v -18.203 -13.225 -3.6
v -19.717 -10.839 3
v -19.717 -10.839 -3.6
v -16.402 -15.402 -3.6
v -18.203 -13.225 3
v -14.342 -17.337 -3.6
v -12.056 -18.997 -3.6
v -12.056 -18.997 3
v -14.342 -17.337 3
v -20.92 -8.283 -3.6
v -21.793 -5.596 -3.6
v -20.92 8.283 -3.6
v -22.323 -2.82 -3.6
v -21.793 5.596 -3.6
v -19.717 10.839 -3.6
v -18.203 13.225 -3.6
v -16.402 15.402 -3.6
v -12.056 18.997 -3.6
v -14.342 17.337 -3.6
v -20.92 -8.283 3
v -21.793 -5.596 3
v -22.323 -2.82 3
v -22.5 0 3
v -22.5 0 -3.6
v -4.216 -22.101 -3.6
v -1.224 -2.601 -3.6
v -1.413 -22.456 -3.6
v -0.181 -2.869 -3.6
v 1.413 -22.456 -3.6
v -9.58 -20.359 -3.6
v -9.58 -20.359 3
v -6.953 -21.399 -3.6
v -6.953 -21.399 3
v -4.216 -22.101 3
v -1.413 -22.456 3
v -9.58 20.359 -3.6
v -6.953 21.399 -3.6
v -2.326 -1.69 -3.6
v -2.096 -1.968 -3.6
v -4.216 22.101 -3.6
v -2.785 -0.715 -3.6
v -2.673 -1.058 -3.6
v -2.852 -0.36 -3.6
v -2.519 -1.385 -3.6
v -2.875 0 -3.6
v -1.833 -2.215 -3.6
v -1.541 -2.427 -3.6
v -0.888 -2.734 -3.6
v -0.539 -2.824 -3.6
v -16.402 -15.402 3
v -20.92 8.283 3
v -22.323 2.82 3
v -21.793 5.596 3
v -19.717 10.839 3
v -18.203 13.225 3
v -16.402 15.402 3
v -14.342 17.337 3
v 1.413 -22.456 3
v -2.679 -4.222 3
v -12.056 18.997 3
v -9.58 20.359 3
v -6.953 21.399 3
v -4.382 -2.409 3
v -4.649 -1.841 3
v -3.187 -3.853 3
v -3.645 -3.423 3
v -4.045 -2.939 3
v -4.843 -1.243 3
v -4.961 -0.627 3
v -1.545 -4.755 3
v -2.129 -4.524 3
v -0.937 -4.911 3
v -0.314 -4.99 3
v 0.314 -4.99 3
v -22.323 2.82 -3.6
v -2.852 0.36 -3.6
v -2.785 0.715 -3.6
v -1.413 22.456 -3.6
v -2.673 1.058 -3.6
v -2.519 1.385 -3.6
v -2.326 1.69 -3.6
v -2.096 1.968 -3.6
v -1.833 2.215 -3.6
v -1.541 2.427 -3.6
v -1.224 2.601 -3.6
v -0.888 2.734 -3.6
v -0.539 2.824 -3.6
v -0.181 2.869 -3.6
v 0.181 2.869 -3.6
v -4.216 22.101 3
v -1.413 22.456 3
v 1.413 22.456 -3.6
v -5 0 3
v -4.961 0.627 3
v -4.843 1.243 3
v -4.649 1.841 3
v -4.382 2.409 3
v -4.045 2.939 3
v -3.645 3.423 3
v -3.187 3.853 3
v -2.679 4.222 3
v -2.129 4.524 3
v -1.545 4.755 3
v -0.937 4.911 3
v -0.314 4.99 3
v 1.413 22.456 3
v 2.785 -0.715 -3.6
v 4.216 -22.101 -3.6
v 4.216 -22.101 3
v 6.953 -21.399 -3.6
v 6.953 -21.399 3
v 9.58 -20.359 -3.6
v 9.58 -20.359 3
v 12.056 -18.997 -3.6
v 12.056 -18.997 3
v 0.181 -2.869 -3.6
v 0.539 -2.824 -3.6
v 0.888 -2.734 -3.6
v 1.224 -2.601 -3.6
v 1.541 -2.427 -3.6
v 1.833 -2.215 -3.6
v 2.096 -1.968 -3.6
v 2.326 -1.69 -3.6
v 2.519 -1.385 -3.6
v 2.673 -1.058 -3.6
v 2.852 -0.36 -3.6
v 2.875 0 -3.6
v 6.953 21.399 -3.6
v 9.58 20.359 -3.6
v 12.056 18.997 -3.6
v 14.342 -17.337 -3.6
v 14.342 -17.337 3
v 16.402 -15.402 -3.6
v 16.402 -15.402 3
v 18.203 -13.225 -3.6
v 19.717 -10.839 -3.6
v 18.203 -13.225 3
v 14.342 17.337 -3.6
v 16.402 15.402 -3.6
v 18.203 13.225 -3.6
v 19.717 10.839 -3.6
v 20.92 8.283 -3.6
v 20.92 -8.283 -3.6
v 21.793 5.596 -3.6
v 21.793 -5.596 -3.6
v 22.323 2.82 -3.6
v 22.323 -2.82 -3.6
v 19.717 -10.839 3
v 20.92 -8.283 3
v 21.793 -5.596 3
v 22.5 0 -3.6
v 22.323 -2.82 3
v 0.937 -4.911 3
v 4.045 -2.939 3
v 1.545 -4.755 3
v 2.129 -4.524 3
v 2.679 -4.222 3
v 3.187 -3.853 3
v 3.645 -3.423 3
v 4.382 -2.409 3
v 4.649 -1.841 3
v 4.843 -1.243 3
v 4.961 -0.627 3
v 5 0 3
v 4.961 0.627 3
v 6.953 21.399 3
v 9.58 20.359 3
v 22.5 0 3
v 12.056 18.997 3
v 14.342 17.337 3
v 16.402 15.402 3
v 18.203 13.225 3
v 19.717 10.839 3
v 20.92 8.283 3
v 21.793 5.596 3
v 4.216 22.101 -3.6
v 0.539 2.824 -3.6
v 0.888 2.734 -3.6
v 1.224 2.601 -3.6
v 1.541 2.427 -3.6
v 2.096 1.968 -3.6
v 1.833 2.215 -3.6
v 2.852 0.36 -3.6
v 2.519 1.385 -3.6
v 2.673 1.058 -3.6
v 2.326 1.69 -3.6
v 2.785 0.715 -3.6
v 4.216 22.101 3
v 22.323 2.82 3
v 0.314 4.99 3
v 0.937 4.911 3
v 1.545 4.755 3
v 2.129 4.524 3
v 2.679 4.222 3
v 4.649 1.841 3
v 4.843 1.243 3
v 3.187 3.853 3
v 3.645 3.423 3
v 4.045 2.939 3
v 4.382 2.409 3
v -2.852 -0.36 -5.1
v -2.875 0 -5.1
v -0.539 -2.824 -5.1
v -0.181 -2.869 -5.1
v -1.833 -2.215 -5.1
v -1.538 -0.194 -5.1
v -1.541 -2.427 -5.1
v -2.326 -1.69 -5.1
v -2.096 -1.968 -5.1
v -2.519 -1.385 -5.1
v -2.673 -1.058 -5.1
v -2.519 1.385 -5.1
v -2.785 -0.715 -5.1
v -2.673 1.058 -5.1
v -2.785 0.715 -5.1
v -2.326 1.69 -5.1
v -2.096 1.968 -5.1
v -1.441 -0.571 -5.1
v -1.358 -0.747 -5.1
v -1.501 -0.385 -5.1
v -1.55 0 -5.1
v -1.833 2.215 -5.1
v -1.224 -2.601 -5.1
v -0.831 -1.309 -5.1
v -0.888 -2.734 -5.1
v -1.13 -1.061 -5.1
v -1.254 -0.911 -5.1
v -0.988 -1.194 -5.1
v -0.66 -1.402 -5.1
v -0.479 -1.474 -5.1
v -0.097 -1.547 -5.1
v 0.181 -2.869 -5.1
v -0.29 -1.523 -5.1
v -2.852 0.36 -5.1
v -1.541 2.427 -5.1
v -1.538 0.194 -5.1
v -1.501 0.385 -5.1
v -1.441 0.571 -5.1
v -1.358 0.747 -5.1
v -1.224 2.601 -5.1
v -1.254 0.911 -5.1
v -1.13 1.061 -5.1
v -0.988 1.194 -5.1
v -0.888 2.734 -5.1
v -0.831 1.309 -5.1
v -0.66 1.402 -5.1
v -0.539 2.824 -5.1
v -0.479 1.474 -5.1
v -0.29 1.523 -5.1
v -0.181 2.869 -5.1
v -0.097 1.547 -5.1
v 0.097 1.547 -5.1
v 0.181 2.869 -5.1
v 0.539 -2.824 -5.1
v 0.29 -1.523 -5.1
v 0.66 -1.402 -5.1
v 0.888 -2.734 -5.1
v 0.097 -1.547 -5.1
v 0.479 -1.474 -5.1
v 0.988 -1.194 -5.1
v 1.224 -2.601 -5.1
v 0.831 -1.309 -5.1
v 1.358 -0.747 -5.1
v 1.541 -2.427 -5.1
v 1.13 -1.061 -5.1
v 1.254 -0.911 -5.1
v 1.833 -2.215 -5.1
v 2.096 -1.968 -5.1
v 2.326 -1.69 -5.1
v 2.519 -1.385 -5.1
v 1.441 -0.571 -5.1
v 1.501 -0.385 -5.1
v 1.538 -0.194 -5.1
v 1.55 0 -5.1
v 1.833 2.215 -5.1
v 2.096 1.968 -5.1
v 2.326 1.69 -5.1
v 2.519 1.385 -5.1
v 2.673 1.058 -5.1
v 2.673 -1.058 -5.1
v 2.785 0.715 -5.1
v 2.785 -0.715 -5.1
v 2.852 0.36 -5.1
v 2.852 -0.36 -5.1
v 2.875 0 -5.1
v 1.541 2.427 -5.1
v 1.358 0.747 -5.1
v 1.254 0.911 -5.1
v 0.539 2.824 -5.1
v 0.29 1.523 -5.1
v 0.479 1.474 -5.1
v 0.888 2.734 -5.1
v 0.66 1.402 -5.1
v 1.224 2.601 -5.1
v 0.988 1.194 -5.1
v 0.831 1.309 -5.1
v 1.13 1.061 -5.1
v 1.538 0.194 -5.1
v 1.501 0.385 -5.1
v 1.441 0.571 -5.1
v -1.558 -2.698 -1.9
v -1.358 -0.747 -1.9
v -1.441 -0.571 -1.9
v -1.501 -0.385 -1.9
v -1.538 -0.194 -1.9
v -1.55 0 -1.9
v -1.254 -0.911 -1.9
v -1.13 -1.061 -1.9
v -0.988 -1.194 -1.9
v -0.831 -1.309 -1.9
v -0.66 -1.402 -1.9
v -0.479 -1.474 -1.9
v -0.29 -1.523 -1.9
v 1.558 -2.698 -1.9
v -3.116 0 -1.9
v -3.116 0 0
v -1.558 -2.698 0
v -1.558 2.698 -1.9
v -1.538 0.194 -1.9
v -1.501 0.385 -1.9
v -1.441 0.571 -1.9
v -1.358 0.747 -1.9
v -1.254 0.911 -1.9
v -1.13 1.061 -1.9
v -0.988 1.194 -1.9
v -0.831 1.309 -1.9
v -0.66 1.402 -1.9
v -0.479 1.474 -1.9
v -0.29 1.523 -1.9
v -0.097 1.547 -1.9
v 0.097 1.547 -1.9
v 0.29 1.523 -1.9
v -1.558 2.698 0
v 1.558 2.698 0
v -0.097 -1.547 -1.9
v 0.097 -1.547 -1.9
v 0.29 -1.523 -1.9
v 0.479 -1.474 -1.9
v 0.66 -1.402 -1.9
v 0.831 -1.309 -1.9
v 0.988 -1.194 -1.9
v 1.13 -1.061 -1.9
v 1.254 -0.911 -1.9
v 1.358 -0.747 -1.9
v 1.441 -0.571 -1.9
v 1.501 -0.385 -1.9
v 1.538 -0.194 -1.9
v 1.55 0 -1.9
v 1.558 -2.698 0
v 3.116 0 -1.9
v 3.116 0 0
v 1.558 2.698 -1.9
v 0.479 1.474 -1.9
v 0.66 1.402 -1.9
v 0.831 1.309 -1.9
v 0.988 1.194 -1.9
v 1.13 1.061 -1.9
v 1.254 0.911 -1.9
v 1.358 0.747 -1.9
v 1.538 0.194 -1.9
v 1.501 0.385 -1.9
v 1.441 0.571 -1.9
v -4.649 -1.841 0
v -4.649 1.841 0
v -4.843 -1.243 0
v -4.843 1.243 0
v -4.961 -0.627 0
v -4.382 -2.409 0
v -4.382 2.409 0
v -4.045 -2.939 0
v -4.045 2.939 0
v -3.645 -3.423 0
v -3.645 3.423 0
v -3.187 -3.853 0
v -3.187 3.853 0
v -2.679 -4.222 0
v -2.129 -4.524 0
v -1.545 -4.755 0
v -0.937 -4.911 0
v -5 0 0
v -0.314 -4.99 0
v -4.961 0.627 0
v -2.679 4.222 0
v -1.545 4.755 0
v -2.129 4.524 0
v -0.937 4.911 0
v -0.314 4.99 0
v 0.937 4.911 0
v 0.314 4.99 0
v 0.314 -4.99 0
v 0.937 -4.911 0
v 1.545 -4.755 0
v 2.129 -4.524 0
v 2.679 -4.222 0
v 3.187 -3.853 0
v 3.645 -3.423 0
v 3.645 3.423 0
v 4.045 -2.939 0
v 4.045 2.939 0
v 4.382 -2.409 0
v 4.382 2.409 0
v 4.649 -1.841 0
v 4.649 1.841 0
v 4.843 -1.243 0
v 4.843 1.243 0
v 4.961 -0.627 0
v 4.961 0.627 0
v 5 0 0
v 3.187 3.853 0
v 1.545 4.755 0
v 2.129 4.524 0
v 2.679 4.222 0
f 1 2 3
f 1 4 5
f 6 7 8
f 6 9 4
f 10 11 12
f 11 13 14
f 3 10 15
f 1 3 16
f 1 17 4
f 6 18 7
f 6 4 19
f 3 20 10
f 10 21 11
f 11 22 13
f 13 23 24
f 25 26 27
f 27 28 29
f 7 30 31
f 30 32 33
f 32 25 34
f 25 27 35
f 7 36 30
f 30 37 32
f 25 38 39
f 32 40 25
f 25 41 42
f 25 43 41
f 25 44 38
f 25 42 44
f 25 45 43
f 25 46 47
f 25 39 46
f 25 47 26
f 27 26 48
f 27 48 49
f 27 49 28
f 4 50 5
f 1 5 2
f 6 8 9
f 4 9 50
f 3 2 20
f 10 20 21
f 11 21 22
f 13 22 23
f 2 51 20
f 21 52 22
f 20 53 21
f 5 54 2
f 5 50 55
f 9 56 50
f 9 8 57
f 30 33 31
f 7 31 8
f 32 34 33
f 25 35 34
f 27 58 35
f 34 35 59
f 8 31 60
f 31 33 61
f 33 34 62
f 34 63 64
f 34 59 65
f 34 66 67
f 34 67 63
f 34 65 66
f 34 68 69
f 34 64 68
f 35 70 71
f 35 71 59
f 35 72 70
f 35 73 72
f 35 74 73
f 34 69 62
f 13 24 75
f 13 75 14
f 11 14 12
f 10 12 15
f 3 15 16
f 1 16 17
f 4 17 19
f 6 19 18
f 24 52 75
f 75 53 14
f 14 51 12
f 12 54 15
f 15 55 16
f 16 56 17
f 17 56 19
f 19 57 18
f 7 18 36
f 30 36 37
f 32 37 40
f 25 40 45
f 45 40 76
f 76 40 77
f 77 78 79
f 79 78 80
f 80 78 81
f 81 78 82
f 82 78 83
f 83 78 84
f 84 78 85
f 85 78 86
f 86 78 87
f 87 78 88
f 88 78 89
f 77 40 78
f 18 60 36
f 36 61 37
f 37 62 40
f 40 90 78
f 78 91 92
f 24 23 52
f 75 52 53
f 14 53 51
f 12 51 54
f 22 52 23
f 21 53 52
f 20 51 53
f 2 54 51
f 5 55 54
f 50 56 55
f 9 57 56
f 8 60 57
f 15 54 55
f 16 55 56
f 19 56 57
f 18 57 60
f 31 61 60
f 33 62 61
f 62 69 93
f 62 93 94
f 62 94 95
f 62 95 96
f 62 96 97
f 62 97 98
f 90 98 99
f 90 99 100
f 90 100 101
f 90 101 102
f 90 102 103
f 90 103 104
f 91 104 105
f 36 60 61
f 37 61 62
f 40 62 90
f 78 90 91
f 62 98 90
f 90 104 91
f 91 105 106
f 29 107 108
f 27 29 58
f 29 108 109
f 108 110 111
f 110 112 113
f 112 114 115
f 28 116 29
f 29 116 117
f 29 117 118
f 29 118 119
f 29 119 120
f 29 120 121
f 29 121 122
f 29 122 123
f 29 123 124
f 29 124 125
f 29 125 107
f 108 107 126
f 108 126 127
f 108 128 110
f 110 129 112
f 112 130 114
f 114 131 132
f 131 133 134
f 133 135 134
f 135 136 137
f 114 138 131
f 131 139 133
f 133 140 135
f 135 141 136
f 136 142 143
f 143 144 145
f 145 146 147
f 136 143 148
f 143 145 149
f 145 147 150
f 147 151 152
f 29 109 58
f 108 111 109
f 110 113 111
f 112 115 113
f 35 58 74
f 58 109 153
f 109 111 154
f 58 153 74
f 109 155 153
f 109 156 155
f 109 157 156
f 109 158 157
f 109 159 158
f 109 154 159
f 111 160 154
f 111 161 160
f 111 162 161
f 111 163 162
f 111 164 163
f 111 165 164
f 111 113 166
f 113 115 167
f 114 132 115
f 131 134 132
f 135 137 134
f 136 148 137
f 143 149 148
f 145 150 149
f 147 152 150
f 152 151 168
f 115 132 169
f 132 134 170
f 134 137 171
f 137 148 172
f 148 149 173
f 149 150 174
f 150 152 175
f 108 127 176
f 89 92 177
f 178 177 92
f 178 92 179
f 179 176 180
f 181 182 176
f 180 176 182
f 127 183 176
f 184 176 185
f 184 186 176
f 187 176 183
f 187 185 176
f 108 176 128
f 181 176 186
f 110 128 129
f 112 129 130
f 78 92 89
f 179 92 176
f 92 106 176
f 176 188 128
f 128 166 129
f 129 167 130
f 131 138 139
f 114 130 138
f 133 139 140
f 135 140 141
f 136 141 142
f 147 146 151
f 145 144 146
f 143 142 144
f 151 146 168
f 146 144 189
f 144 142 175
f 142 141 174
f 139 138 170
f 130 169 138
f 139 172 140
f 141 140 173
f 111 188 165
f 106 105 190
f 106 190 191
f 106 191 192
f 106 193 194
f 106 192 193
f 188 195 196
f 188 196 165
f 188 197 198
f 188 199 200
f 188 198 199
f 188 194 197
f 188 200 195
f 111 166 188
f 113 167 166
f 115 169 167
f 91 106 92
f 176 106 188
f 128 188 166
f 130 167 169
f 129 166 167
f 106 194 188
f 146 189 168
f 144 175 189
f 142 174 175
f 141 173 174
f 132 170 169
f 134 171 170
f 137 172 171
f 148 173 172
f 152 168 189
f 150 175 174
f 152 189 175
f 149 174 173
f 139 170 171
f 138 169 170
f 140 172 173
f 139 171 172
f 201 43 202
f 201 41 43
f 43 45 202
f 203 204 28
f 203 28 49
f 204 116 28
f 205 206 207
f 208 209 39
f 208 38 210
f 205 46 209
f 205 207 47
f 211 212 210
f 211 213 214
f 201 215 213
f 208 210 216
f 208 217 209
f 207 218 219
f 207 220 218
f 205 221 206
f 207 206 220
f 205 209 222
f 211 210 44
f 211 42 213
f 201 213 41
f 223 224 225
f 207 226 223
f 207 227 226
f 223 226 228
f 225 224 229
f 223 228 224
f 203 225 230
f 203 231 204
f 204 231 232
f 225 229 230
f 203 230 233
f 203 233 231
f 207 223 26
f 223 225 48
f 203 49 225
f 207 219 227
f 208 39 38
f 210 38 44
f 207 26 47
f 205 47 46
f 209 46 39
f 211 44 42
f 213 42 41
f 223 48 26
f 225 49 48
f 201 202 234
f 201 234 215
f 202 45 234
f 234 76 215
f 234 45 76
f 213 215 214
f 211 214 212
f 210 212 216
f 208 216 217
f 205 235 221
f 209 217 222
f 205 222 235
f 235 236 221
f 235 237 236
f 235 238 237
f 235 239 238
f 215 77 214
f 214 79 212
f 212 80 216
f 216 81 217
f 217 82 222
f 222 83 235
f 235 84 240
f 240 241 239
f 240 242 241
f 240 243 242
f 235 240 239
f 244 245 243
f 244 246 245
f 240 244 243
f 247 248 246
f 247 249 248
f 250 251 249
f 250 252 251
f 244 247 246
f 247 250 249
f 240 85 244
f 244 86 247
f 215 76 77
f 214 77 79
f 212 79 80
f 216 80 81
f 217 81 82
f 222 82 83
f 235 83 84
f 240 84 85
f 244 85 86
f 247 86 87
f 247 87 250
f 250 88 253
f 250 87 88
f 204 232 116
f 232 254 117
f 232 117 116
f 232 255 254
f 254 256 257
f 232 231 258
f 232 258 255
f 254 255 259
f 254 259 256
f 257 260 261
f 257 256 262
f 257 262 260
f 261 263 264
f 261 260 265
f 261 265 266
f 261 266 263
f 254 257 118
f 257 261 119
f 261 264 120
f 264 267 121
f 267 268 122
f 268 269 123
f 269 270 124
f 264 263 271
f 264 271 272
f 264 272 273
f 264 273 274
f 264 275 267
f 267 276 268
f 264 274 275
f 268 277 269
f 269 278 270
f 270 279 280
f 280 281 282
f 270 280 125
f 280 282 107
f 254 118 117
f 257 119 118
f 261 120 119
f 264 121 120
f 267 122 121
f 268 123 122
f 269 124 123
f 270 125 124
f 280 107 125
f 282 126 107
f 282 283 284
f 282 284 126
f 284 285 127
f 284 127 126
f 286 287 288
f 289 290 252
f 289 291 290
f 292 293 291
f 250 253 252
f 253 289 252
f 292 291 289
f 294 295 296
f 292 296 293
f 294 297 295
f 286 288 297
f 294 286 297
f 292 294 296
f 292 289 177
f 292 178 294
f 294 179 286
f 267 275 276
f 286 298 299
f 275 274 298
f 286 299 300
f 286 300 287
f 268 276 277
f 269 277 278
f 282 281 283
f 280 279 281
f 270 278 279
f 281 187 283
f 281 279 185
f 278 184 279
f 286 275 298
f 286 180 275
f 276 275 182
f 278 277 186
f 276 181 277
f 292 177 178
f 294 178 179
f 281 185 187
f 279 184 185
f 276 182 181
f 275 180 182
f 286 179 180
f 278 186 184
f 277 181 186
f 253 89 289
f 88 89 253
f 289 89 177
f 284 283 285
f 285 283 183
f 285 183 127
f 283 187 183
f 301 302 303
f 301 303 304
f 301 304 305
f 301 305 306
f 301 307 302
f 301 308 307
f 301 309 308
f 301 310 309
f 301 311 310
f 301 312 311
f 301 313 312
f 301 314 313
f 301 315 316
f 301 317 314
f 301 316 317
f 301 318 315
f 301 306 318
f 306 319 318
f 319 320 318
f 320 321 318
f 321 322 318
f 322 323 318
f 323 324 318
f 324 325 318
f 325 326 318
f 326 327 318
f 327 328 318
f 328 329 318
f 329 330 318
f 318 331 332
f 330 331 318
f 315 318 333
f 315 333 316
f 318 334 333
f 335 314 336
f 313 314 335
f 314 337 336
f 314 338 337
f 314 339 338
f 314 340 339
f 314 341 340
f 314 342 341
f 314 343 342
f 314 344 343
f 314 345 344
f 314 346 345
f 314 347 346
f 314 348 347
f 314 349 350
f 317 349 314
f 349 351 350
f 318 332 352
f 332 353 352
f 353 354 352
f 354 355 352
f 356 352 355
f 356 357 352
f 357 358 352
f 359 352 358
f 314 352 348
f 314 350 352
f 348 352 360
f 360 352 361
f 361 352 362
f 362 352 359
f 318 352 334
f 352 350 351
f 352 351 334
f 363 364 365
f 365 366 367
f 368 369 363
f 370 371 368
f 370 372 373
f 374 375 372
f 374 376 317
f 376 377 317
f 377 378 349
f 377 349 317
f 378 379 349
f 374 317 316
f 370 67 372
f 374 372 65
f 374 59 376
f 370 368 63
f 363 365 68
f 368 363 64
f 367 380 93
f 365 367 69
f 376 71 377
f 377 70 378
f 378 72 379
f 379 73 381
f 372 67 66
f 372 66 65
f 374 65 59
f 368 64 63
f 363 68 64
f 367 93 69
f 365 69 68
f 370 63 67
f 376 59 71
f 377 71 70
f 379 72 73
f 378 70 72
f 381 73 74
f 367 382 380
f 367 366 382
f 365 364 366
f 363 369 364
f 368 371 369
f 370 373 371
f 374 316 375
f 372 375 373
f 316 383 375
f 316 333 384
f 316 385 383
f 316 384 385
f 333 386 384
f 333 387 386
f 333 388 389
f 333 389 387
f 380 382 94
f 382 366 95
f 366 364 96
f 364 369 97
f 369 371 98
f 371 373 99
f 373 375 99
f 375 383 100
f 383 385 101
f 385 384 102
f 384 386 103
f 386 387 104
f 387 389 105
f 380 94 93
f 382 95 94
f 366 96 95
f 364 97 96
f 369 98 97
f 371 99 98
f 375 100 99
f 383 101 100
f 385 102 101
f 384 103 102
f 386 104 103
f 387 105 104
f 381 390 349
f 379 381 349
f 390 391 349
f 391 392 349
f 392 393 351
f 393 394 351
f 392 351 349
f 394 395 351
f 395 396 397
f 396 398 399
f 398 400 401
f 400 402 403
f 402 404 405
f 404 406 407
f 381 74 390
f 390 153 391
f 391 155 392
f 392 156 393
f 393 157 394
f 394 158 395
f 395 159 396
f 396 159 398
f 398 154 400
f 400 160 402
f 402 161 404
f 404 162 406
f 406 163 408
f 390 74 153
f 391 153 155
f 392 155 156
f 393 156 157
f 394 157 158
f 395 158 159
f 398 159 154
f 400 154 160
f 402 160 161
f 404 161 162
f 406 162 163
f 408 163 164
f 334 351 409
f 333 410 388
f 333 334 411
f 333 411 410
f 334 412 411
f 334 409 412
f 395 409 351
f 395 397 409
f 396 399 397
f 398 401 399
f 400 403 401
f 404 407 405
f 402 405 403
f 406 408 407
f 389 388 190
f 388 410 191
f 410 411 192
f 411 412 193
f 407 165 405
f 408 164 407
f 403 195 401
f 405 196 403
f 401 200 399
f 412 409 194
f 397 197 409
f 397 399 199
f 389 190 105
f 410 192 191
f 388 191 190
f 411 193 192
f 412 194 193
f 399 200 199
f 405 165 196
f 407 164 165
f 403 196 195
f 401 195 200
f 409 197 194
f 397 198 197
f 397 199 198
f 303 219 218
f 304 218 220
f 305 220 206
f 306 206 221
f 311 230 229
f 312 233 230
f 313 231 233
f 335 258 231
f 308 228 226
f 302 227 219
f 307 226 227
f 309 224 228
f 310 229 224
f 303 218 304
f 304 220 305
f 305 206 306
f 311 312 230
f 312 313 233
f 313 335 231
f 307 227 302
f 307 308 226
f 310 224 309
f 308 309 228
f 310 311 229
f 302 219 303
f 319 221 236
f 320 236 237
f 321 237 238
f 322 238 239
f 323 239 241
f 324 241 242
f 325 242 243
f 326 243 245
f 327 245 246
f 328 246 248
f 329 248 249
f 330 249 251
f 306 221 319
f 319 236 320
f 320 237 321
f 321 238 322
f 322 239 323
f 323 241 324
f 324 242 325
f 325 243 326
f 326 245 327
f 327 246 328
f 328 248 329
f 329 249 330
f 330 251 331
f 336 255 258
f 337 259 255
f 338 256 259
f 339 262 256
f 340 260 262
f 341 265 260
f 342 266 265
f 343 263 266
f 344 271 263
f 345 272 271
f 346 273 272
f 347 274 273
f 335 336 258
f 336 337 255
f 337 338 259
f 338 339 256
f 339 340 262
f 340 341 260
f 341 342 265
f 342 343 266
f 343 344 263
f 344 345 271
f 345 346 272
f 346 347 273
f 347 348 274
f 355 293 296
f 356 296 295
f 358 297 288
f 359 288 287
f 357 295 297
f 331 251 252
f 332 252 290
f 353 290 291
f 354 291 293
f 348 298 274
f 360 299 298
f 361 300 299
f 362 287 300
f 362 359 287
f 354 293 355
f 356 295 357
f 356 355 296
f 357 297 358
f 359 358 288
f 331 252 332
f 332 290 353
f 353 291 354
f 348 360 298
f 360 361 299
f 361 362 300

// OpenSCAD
$fn = 50;


difference() {
	union() {
		translate(v = [0, 0, -3.6000000000]) {
			cylinder(h = 6.6000000000, r = 22.5000000000);
		}
		#translate(v = [0, 0, -5.1000000000]) {
			cylinder(h = 5.1000000000, r = 2.8750000000);
		}
	}
	union() {
		translate(v = [0, 0, 0]) {
			rotate(a = [0, 0, 0]) {
				difference() {
					union() {
						translate(v = [0, 0, -1.9000000000]) {
							linear_extrude(height = 1.9000000000) {
								polygon(points = [[3.1158000000, 0.0000000000], [1.5579000000, 2.6983619531], [-1.5579000000, 2.6983619531], [-3.1158000000, 0.0000000000], [-1.5579000000, -2.6983619531], [1.5579000000, -2.6983619531]]);
							}
						}
					}
					union();
				}
			}
		}
		#cylinder(h = 3, r = 5.0000000000);
		#translate(v = [0, 0, -100.0000000000]) {
			cylinder(h = 200, r = 1.5500000000);
		}
	}
}
